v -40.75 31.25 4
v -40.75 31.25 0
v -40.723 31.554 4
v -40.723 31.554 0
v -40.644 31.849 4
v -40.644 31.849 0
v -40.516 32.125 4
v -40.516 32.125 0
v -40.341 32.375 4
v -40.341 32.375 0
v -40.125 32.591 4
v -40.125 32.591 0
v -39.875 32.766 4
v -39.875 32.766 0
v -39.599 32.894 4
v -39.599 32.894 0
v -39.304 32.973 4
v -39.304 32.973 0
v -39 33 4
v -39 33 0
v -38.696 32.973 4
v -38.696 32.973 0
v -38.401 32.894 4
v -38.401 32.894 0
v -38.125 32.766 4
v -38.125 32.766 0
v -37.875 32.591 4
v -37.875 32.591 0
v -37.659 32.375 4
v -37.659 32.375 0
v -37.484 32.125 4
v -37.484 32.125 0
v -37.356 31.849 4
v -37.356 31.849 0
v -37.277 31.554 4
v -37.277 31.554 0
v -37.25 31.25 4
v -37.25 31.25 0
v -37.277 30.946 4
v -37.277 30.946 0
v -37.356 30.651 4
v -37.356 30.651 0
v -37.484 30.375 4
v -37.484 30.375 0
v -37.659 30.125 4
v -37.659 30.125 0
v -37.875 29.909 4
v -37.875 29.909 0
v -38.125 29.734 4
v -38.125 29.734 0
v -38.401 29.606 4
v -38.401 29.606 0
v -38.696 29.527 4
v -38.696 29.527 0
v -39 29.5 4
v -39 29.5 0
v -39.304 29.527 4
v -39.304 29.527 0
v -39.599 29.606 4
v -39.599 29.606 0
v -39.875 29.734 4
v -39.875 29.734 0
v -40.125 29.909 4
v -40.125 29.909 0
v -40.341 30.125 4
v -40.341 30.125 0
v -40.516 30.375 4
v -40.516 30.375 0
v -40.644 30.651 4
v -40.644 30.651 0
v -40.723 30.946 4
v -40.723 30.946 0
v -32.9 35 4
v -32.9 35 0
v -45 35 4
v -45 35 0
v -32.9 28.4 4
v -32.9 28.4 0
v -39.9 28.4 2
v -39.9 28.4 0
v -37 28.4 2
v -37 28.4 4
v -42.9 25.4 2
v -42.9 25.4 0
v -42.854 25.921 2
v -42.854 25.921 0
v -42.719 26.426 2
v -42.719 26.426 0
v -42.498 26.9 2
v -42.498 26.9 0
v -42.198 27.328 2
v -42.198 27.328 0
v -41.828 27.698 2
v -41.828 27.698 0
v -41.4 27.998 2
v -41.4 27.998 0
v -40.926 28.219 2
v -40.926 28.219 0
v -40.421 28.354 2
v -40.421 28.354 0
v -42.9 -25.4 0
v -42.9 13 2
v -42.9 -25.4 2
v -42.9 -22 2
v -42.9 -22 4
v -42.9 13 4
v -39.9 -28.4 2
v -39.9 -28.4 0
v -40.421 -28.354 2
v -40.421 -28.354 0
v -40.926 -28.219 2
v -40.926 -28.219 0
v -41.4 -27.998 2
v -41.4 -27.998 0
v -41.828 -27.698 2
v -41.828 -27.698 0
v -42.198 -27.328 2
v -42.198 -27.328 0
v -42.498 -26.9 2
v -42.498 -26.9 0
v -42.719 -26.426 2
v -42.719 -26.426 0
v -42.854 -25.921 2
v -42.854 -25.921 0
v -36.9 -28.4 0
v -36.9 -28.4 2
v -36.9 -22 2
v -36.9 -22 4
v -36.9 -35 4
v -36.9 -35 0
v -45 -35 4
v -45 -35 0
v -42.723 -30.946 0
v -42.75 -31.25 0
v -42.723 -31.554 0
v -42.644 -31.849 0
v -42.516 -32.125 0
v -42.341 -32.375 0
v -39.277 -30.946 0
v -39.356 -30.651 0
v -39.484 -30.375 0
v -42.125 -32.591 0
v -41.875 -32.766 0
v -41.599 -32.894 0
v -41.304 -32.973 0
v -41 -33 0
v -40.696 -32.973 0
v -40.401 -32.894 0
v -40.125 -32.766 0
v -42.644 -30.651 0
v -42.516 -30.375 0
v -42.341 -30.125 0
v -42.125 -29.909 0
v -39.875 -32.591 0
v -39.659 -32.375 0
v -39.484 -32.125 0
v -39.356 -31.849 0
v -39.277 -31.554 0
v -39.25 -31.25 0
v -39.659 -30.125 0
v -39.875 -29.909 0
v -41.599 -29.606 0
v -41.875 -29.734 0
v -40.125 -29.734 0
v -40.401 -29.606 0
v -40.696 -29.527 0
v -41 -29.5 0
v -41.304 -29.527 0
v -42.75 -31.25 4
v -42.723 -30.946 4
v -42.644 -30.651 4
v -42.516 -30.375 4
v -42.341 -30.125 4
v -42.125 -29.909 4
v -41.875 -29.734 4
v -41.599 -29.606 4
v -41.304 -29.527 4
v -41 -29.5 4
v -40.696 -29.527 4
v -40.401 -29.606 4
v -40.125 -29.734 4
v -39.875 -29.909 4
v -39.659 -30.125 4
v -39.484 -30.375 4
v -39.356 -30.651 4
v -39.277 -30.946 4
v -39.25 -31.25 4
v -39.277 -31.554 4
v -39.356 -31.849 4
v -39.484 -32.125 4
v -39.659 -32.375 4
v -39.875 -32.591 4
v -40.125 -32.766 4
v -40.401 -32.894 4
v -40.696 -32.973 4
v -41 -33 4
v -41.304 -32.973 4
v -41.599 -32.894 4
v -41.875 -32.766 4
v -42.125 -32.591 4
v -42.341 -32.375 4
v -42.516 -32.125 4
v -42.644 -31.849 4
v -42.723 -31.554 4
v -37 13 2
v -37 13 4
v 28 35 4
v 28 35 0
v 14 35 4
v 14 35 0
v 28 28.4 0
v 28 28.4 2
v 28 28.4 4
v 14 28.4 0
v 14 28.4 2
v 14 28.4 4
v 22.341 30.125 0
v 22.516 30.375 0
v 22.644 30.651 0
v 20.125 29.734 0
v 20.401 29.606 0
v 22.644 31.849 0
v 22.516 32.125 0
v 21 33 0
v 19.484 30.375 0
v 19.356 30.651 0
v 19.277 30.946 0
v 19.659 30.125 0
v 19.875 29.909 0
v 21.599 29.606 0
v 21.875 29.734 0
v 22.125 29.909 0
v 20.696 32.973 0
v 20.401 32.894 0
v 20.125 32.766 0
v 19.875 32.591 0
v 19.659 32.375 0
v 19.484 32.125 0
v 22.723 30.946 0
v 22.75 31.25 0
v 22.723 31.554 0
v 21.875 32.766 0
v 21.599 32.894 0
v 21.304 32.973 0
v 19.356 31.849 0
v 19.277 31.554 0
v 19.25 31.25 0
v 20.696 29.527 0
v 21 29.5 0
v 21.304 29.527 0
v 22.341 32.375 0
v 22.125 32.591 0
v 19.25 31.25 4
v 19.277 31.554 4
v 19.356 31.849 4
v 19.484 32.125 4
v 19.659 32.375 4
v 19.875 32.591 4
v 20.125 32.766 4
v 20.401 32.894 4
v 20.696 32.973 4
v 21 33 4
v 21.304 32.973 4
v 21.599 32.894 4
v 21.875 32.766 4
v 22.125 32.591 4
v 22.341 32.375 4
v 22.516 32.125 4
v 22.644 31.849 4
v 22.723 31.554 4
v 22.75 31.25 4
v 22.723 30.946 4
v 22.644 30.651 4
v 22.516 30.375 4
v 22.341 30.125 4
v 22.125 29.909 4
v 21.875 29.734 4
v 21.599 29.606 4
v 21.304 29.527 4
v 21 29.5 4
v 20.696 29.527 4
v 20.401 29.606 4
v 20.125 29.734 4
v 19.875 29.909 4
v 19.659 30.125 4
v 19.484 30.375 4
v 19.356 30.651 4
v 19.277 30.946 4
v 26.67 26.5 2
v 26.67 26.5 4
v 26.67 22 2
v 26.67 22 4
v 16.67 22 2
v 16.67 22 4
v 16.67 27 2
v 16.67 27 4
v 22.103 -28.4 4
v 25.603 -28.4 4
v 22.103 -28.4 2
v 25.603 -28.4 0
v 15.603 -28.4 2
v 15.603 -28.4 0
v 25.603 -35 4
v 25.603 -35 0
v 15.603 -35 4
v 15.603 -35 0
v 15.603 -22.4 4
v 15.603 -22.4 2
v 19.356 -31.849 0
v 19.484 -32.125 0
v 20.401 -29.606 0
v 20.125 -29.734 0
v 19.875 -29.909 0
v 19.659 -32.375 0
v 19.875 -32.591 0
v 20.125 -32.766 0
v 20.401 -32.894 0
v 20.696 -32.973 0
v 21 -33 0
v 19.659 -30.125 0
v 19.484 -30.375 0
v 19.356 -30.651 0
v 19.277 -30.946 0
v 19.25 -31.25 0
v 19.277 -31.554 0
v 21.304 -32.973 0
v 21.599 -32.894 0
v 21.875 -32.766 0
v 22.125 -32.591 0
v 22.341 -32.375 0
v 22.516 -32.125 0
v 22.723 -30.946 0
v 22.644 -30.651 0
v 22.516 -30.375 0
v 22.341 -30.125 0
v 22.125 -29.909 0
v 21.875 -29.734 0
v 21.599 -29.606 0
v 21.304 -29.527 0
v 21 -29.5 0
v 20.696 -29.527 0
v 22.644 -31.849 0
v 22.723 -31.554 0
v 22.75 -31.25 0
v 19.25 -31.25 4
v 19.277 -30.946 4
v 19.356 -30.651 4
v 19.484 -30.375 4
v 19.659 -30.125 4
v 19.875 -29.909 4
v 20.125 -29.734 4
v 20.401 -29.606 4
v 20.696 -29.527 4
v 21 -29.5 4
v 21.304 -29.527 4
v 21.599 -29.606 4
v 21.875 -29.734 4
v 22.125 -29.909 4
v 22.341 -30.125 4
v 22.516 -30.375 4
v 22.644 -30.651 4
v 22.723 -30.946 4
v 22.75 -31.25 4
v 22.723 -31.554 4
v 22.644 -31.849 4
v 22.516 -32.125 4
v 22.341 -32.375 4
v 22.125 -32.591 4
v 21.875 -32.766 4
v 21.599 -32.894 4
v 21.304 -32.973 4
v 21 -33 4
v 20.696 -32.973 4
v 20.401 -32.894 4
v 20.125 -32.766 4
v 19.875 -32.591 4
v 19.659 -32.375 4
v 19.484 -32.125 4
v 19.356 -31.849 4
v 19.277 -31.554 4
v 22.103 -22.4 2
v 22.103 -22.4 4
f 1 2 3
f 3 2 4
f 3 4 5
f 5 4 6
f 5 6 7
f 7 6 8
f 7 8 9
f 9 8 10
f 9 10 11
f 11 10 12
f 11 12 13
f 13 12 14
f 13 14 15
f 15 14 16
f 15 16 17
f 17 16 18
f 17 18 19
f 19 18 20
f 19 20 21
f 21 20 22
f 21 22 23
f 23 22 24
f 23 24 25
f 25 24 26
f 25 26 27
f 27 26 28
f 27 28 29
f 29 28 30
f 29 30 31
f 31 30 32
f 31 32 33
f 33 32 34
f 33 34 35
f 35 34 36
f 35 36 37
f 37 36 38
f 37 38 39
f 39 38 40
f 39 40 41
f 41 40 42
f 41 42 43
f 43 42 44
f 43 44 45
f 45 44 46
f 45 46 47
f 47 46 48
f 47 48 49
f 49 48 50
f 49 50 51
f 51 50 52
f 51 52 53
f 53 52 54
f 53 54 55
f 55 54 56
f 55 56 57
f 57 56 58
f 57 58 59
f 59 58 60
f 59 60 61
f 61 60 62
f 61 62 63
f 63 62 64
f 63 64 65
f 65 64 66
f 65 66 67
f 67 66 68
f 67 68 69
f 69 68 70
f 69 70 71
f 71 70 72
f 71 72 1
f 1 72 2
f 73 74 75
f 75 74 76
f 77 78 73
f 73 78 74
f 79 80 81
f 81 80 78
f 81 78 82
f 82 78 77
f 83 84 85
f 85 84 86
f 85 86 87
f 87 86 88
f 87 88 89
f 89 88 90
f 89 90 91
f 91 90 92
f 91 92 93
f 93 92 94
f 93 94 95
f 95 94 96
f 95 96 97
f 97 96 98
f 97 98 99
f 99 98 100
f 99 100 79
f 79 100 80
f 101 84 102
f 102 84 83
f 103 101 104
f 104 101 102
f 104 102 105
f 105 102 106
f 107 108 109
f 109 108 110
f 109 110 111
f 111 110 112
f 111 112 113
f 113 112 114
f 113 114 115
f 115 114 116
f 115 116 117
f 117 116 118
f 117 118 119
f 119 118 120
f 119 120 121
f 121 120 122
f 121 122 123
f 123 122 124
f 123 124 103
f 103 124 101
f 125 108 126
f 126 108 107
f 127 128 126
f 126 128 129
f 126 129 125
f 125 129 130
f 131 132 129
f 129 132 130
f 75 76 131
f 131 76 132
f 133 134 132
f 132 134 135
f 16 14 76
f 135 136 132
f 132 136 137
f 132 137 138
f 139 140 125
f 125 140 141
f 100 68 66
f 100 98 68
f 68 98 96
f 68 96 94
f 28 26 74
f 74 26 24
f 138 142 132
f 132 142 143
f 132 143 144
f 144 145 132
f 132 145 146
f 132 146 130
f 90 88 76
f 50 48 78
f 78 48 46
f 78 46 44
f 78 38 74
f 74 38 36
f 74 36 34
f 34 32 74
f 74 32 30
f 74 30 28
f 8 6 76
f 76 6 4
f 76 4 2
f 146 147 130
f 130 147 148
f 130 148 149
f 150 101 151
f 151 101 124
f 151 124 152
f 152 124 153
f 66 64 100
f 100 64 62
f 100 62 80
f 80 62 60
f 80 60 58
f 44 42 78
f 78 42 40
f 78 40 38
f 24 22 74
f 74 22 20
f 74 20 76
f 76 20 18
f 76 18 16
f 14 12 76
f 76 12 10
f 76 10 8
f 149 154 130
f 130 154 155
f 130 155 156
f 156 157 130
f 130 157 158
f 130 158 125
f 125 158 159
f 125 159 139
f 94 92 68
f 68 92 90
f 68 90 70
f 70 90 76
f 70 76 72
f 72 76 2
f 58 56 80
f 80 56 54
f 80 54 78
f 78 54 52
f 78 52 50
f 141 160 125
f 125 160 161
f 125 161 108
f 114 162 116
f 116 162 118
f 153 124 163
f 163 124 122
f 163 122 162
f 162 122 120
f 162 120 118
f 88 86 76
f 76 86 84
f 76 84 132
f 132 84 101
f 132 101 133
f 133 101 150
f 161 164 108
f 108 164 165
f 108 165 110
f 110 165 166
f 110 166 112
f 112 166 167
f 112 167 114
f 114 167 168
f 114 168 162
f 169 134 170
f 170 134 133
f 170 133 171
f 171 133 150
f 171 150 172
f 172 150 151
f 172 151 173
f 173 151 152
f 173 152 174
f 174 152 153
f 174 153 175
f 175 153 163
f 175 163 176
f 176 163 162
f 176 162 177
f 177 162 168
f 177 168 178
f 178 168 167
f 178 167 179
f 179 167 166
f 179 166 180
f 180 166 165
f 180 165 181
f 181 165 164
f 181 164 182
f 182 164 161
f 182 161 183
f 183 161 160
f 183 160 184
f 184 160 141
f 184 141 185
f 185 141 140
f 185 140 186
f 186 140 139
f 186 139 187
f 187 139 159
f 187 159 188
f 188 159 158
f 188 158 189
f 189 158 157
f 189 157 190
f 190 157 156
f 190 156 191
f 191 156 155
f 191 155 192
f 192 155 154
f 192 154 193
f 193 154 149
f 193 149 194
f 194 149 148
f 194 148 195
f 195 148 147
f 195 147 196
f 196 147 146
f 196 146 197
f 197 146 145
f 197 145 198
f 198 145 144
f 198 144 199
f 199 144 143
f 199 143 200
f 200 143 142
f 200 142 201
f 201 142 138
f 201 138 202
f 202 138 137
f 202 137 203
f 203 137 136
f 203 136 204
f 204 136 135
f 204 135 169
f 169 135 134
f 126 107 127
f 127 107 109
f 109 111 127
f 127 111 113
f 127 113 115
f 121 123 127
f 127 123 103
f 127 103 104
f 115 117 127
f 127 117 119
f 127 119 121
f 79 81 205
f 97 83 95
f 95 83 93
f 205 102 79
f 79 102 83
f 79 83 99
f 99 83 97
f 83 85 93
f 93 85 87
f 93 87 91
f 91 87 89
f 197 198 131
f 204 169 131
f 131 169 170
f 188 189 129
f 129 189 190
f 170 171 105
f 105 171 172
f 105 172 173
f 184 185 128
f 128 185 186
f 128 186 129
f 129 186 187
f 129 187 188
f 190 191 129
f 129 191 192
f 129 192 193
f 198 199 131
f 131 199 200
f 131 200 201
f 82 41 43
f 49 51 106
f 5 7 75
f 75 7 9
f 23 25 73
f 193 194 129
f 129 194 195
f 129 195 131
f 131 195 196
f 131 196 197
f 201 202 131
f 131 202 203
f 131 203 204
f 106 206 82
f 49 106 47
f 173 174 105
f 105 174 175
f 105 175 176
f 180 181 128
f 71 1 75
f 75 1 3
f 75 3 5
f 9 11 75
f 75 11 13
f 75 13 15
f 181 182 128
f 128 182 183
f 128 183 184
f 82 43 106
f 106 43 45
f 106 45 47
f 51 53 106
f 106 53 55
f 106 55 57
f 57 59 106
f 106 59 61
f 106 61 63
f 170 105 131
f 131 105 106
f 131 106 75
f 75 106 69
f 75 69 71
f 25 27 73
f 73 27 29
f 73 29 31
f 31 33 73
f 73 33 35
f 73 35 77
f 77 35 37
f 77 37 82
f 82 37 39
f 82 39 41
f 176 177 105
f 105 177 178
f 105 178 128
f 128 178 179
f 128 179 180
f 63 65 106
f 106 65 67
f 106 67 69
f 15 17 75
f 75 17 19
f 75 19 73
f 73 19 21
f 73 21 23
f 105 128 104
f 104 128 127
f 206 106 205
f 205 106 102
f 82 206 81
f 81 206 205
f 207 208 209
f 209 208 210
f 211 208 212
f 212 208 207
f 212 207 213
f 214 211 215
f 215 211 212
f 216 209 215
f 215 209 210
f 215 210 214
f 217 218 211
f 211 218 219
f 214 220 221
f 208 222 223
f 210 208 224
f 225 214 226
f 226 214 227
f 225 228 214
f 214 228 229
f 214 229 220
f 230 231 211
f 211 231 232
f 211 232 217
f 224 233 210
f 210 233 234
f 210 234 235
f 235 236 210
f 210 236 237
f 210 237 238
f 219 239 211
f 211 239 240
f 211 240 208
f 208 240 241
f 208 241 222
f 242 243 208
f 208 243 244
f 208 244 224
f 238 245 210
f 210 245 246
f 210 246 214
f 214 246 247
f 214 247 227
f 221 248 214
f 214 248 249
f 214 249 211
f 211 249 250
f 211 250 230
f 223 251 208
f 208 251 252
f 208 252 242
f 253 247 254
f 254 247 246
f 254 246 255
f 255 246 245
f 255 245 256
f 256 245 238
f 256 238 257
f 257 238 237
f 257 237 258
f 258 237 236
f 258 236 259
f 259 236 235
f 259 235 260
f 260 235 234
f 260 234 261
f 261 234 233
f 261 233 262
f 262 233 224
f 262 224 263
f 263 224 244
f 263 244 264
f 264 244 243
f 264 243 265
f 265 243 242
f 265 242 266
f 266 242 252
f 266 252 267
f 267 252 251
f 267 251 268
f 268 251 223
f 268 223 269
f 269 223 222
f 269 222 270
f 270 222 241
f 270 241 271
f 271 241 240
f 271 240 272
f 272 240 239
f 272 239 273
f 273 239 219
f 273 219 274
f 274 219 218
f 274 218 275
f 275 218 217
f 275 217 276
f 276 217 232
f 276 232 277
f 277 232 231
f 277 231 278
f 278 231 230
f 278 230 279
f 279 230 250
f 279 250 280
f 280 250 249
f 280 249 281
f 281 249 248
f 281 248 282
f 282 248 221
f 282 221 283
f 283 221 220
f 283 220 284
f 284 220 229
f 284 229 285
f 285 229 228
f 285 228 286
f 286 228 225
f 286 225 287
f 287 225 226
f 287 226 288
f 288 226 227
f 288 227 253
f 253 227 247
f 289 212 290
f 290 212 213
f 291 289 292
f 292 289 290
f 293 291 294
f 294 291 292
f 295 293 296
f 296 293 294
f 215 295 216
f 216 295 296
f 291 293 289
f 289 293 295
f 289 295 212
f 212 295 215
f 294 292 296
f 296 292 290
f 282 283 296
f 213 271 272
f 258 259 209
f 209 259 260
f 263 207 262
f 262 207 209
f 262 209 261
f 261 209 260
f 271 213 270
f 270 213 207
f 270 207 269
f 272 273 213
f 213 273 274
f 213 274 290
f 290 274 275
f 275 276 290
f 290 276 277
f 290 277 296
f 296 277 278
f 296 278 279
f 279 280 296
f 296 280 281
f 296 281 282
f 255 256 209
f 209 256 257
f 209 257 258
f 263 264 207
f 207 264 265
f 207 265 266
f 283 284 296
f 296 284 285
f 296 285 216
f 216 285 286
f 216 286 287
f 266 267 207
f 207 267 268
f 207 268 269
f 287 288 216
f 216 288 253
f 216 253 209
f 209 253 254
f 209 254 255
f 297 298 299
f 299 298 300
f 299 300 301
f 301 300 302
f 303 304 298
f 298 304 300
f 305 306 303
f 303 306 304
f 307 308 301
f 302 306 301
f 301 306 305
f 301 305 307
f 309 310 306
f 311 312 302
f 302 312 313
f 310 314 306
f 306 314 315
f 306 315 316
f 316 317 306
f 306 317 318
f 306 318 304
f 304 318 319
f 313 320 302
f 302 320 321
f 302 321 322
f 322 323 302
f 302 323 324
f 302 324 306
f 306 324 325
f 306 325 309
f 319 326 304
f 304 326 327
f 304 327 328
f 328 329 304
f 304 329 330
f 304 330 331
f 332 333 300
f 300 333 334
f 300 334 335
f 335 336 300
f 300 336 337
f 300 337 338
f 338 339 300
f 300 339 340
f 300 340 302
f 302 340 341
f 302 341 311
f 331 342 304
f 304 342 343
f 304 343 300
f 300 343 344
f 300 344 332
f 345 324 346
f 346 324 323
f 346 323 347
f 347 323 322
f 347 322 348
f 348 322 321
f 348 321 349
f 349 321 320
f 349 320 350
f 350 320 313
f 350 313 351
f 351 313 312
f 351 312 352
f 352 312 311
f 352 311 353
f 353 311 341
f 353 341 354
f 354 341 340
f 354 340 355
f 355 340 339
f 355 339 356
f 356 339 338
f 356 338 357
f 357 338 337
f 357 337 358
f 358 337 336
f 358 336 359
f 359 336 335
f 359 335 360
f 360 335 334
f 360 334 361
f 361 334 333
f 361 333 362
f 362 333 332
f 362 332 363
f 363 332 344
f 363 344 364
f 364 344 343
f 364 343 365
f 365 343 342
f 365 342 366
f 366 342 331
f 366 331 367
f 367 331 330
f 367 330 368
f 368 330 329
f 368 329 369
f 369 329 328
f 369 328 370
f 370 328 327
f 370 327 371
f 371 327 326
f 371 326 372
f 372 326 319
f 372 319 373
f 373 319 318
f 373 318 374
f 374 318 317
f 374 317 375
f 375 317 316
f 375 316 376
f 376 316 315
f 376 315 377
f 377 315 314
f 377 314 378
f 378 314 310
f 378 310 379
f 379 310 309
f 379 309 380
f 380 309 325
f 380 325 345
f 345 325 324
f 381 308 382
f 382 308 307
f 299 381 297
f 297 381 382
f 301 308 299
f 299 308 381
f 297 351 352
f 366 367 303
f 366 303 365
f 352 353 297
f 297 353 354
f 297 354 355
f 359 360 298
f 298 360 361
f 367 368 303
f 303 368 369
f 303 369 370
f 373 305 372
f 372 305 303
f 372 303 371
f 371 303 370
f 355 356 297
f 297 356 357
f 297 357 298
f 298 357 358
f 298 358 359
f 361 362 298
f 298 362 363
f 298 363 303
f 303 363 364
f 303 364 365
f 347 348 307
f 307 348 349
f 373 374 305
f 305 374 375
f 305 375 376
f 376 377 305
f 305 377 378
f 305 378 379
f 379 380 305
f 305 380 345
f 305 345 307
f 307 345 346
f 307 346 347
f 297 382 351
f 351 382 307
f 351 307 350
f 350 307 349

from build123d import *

# Parameters (mm, degrees)
SKETCH1_R             = 1.75
BOSS_EXTRUDE1_DEPTH   = 2
SKETCH2_R             = 1.75
BOSS_EXTRUDE2_DEPTH   = 2
SKETCH3_W             = 14
SKETCH3_H             = 6.6
SKETCH3_R             = 1.75
BOSS_EXTRUDE3_DEPTH   = 2
SKETCH3_W_2           = 10
BOSS_EXTRUDE3_2_DEPTH = 2
SKETCH4_R             = 1.75
BOSS_EXTRUDE4_DEPTH   = 2


with BuildPart() as part:
    # Sketch1 → Boss-Extrude1 (new body)
    with BuildSketch(Plane.XY):
        with BuildLine():
            Line((-45, 35), (-42.9, 35))
            Line((-42.9, 35), (-32.9, 35))
            Line((-32.9, 35), (-32.9, 28.4))
            Line((-32.9, 28.4), (-39.9, 28.4))
            ThreePointArc((-39.9, 28.4), (-42.021320344, 27.521320344), (-42.9, 25.4))
            Line((-42.9, 25.4), (-42.9, -25.4))
            ThreePointArc((-42.9, -25.4), (-42.021320344, -27.521320344), (-39.9, -28.4))
            Line((-39.9, -28.4), (-36.9, -28.4))
            Line((-36.9, -28.4), (-36.9, -35))
            Line((-36.9, -35), (-42.9, -35))
            Line((-42.9, -35), (-45, -35))
            Line((-45, -35), (-45, 35))
        make_face()
        with Locations((-39, 31.25)):
            Circle(SKETCH1_R, mode=Mode.SUBTRACT)
        with Locations((-41, -31.25)):
            Circle(SKETCH1_R, mode=Mode.SUBTRACT)
    extrude(amount=BOSS_EXTRUDE1_DEPTH)

    # Sketch2 → Boss-Extrude2 (add)
    with BuildSketch(Plane.XY.offset(2)):
        Polygon((-45, 35), (-37, 35), (-32.9, 35), (-32.9, 28.4), (-37, 28.4), (-37, 13), (-42.9, 13), (-42.9, -22), (-36.9, -22), (-36.9, -35), (-45, -35), (-45, -22), (-45, 13), align=None)
        with Locations((-41, -31.25)):
            Circle(SKETCH2_R, mode=Mode.SUBTRACT)
        with Locations((-39, 31.25)):
            Circle(SKETCH2_R, mode=Mode.SUBTRACT)
    extrude(amount=BOSS_EXTRUDE2_DEPTH)


with BuildPart() as body_2:
    # Sketch3 → Boss-Extrude3 (new body)
    with BuildSketch(Plane.XY):
        with Locations((21, 31.7)):
            Rectangle(SKETCH3_W, SKETCH3_H)
        with Locations((21, 31.25)):
            Circle(SKETCH3_R, mode=Mode.SUBTRACT)
    extrude(amount=BOSS_EXTRUDE3_DEPTH)



with BuildPart() as body_3:
    # Sketch3 → Boss-Extrude3 2 (new body)
    with BuildSketch(Plane.XY):
        with Locations((20.603475334, -31.7)):
            Rectangle(SKETCH3_W_2, SKETCH3_H)
        with Locations((21, -31.25)):
            Circle(SKETCH3_R, mode=Mode.SUBTRACT)
    extrude(amount=BOSS_EXTRUDE3_2_DEPTH)


with BuildPart() as body_2_1:
    add(body_2.part)

    add(body_3.part)  # Boss-Extrude4 merges body 3
    # Sketch4 → Boss-Extrude4 (add)
    # profile 1 of 2: a face of its own
    with BuildSketch(Plane.XY.offset(2)):
        Polygon((28, 35), (28, 28.4), (26.669605677, 26.5), (26.669605677, 22), (16.669605677, 22), (16.669605677, 27), (14, 28.4), (14, 35), align=None)
        with Locations((21, 31.25)):
            Circle(SKETCH4_R, mode=Mode.SUBTRACT)
    # profile 2 of 2: a face of its own
    with BuildSketch(Plane.XY.offset(2)):
        Polygon((15.603475334, -35), (15.603475334, -28.4), (15.603475334, -22.4), (22.103475334, -22.4), (22.103475334, -28.4), (25.603475334, -28.4), (25.603475334, -35), align=None)
        with Locations((21, -31.25)):
            Circle(SKETCH4_R, mode=Mode.SUBTRACT)
    extrude(amount=BOSS_EXTRUDE4_DEPTH)


solid = Compound([part.part, body_2_1.part])
